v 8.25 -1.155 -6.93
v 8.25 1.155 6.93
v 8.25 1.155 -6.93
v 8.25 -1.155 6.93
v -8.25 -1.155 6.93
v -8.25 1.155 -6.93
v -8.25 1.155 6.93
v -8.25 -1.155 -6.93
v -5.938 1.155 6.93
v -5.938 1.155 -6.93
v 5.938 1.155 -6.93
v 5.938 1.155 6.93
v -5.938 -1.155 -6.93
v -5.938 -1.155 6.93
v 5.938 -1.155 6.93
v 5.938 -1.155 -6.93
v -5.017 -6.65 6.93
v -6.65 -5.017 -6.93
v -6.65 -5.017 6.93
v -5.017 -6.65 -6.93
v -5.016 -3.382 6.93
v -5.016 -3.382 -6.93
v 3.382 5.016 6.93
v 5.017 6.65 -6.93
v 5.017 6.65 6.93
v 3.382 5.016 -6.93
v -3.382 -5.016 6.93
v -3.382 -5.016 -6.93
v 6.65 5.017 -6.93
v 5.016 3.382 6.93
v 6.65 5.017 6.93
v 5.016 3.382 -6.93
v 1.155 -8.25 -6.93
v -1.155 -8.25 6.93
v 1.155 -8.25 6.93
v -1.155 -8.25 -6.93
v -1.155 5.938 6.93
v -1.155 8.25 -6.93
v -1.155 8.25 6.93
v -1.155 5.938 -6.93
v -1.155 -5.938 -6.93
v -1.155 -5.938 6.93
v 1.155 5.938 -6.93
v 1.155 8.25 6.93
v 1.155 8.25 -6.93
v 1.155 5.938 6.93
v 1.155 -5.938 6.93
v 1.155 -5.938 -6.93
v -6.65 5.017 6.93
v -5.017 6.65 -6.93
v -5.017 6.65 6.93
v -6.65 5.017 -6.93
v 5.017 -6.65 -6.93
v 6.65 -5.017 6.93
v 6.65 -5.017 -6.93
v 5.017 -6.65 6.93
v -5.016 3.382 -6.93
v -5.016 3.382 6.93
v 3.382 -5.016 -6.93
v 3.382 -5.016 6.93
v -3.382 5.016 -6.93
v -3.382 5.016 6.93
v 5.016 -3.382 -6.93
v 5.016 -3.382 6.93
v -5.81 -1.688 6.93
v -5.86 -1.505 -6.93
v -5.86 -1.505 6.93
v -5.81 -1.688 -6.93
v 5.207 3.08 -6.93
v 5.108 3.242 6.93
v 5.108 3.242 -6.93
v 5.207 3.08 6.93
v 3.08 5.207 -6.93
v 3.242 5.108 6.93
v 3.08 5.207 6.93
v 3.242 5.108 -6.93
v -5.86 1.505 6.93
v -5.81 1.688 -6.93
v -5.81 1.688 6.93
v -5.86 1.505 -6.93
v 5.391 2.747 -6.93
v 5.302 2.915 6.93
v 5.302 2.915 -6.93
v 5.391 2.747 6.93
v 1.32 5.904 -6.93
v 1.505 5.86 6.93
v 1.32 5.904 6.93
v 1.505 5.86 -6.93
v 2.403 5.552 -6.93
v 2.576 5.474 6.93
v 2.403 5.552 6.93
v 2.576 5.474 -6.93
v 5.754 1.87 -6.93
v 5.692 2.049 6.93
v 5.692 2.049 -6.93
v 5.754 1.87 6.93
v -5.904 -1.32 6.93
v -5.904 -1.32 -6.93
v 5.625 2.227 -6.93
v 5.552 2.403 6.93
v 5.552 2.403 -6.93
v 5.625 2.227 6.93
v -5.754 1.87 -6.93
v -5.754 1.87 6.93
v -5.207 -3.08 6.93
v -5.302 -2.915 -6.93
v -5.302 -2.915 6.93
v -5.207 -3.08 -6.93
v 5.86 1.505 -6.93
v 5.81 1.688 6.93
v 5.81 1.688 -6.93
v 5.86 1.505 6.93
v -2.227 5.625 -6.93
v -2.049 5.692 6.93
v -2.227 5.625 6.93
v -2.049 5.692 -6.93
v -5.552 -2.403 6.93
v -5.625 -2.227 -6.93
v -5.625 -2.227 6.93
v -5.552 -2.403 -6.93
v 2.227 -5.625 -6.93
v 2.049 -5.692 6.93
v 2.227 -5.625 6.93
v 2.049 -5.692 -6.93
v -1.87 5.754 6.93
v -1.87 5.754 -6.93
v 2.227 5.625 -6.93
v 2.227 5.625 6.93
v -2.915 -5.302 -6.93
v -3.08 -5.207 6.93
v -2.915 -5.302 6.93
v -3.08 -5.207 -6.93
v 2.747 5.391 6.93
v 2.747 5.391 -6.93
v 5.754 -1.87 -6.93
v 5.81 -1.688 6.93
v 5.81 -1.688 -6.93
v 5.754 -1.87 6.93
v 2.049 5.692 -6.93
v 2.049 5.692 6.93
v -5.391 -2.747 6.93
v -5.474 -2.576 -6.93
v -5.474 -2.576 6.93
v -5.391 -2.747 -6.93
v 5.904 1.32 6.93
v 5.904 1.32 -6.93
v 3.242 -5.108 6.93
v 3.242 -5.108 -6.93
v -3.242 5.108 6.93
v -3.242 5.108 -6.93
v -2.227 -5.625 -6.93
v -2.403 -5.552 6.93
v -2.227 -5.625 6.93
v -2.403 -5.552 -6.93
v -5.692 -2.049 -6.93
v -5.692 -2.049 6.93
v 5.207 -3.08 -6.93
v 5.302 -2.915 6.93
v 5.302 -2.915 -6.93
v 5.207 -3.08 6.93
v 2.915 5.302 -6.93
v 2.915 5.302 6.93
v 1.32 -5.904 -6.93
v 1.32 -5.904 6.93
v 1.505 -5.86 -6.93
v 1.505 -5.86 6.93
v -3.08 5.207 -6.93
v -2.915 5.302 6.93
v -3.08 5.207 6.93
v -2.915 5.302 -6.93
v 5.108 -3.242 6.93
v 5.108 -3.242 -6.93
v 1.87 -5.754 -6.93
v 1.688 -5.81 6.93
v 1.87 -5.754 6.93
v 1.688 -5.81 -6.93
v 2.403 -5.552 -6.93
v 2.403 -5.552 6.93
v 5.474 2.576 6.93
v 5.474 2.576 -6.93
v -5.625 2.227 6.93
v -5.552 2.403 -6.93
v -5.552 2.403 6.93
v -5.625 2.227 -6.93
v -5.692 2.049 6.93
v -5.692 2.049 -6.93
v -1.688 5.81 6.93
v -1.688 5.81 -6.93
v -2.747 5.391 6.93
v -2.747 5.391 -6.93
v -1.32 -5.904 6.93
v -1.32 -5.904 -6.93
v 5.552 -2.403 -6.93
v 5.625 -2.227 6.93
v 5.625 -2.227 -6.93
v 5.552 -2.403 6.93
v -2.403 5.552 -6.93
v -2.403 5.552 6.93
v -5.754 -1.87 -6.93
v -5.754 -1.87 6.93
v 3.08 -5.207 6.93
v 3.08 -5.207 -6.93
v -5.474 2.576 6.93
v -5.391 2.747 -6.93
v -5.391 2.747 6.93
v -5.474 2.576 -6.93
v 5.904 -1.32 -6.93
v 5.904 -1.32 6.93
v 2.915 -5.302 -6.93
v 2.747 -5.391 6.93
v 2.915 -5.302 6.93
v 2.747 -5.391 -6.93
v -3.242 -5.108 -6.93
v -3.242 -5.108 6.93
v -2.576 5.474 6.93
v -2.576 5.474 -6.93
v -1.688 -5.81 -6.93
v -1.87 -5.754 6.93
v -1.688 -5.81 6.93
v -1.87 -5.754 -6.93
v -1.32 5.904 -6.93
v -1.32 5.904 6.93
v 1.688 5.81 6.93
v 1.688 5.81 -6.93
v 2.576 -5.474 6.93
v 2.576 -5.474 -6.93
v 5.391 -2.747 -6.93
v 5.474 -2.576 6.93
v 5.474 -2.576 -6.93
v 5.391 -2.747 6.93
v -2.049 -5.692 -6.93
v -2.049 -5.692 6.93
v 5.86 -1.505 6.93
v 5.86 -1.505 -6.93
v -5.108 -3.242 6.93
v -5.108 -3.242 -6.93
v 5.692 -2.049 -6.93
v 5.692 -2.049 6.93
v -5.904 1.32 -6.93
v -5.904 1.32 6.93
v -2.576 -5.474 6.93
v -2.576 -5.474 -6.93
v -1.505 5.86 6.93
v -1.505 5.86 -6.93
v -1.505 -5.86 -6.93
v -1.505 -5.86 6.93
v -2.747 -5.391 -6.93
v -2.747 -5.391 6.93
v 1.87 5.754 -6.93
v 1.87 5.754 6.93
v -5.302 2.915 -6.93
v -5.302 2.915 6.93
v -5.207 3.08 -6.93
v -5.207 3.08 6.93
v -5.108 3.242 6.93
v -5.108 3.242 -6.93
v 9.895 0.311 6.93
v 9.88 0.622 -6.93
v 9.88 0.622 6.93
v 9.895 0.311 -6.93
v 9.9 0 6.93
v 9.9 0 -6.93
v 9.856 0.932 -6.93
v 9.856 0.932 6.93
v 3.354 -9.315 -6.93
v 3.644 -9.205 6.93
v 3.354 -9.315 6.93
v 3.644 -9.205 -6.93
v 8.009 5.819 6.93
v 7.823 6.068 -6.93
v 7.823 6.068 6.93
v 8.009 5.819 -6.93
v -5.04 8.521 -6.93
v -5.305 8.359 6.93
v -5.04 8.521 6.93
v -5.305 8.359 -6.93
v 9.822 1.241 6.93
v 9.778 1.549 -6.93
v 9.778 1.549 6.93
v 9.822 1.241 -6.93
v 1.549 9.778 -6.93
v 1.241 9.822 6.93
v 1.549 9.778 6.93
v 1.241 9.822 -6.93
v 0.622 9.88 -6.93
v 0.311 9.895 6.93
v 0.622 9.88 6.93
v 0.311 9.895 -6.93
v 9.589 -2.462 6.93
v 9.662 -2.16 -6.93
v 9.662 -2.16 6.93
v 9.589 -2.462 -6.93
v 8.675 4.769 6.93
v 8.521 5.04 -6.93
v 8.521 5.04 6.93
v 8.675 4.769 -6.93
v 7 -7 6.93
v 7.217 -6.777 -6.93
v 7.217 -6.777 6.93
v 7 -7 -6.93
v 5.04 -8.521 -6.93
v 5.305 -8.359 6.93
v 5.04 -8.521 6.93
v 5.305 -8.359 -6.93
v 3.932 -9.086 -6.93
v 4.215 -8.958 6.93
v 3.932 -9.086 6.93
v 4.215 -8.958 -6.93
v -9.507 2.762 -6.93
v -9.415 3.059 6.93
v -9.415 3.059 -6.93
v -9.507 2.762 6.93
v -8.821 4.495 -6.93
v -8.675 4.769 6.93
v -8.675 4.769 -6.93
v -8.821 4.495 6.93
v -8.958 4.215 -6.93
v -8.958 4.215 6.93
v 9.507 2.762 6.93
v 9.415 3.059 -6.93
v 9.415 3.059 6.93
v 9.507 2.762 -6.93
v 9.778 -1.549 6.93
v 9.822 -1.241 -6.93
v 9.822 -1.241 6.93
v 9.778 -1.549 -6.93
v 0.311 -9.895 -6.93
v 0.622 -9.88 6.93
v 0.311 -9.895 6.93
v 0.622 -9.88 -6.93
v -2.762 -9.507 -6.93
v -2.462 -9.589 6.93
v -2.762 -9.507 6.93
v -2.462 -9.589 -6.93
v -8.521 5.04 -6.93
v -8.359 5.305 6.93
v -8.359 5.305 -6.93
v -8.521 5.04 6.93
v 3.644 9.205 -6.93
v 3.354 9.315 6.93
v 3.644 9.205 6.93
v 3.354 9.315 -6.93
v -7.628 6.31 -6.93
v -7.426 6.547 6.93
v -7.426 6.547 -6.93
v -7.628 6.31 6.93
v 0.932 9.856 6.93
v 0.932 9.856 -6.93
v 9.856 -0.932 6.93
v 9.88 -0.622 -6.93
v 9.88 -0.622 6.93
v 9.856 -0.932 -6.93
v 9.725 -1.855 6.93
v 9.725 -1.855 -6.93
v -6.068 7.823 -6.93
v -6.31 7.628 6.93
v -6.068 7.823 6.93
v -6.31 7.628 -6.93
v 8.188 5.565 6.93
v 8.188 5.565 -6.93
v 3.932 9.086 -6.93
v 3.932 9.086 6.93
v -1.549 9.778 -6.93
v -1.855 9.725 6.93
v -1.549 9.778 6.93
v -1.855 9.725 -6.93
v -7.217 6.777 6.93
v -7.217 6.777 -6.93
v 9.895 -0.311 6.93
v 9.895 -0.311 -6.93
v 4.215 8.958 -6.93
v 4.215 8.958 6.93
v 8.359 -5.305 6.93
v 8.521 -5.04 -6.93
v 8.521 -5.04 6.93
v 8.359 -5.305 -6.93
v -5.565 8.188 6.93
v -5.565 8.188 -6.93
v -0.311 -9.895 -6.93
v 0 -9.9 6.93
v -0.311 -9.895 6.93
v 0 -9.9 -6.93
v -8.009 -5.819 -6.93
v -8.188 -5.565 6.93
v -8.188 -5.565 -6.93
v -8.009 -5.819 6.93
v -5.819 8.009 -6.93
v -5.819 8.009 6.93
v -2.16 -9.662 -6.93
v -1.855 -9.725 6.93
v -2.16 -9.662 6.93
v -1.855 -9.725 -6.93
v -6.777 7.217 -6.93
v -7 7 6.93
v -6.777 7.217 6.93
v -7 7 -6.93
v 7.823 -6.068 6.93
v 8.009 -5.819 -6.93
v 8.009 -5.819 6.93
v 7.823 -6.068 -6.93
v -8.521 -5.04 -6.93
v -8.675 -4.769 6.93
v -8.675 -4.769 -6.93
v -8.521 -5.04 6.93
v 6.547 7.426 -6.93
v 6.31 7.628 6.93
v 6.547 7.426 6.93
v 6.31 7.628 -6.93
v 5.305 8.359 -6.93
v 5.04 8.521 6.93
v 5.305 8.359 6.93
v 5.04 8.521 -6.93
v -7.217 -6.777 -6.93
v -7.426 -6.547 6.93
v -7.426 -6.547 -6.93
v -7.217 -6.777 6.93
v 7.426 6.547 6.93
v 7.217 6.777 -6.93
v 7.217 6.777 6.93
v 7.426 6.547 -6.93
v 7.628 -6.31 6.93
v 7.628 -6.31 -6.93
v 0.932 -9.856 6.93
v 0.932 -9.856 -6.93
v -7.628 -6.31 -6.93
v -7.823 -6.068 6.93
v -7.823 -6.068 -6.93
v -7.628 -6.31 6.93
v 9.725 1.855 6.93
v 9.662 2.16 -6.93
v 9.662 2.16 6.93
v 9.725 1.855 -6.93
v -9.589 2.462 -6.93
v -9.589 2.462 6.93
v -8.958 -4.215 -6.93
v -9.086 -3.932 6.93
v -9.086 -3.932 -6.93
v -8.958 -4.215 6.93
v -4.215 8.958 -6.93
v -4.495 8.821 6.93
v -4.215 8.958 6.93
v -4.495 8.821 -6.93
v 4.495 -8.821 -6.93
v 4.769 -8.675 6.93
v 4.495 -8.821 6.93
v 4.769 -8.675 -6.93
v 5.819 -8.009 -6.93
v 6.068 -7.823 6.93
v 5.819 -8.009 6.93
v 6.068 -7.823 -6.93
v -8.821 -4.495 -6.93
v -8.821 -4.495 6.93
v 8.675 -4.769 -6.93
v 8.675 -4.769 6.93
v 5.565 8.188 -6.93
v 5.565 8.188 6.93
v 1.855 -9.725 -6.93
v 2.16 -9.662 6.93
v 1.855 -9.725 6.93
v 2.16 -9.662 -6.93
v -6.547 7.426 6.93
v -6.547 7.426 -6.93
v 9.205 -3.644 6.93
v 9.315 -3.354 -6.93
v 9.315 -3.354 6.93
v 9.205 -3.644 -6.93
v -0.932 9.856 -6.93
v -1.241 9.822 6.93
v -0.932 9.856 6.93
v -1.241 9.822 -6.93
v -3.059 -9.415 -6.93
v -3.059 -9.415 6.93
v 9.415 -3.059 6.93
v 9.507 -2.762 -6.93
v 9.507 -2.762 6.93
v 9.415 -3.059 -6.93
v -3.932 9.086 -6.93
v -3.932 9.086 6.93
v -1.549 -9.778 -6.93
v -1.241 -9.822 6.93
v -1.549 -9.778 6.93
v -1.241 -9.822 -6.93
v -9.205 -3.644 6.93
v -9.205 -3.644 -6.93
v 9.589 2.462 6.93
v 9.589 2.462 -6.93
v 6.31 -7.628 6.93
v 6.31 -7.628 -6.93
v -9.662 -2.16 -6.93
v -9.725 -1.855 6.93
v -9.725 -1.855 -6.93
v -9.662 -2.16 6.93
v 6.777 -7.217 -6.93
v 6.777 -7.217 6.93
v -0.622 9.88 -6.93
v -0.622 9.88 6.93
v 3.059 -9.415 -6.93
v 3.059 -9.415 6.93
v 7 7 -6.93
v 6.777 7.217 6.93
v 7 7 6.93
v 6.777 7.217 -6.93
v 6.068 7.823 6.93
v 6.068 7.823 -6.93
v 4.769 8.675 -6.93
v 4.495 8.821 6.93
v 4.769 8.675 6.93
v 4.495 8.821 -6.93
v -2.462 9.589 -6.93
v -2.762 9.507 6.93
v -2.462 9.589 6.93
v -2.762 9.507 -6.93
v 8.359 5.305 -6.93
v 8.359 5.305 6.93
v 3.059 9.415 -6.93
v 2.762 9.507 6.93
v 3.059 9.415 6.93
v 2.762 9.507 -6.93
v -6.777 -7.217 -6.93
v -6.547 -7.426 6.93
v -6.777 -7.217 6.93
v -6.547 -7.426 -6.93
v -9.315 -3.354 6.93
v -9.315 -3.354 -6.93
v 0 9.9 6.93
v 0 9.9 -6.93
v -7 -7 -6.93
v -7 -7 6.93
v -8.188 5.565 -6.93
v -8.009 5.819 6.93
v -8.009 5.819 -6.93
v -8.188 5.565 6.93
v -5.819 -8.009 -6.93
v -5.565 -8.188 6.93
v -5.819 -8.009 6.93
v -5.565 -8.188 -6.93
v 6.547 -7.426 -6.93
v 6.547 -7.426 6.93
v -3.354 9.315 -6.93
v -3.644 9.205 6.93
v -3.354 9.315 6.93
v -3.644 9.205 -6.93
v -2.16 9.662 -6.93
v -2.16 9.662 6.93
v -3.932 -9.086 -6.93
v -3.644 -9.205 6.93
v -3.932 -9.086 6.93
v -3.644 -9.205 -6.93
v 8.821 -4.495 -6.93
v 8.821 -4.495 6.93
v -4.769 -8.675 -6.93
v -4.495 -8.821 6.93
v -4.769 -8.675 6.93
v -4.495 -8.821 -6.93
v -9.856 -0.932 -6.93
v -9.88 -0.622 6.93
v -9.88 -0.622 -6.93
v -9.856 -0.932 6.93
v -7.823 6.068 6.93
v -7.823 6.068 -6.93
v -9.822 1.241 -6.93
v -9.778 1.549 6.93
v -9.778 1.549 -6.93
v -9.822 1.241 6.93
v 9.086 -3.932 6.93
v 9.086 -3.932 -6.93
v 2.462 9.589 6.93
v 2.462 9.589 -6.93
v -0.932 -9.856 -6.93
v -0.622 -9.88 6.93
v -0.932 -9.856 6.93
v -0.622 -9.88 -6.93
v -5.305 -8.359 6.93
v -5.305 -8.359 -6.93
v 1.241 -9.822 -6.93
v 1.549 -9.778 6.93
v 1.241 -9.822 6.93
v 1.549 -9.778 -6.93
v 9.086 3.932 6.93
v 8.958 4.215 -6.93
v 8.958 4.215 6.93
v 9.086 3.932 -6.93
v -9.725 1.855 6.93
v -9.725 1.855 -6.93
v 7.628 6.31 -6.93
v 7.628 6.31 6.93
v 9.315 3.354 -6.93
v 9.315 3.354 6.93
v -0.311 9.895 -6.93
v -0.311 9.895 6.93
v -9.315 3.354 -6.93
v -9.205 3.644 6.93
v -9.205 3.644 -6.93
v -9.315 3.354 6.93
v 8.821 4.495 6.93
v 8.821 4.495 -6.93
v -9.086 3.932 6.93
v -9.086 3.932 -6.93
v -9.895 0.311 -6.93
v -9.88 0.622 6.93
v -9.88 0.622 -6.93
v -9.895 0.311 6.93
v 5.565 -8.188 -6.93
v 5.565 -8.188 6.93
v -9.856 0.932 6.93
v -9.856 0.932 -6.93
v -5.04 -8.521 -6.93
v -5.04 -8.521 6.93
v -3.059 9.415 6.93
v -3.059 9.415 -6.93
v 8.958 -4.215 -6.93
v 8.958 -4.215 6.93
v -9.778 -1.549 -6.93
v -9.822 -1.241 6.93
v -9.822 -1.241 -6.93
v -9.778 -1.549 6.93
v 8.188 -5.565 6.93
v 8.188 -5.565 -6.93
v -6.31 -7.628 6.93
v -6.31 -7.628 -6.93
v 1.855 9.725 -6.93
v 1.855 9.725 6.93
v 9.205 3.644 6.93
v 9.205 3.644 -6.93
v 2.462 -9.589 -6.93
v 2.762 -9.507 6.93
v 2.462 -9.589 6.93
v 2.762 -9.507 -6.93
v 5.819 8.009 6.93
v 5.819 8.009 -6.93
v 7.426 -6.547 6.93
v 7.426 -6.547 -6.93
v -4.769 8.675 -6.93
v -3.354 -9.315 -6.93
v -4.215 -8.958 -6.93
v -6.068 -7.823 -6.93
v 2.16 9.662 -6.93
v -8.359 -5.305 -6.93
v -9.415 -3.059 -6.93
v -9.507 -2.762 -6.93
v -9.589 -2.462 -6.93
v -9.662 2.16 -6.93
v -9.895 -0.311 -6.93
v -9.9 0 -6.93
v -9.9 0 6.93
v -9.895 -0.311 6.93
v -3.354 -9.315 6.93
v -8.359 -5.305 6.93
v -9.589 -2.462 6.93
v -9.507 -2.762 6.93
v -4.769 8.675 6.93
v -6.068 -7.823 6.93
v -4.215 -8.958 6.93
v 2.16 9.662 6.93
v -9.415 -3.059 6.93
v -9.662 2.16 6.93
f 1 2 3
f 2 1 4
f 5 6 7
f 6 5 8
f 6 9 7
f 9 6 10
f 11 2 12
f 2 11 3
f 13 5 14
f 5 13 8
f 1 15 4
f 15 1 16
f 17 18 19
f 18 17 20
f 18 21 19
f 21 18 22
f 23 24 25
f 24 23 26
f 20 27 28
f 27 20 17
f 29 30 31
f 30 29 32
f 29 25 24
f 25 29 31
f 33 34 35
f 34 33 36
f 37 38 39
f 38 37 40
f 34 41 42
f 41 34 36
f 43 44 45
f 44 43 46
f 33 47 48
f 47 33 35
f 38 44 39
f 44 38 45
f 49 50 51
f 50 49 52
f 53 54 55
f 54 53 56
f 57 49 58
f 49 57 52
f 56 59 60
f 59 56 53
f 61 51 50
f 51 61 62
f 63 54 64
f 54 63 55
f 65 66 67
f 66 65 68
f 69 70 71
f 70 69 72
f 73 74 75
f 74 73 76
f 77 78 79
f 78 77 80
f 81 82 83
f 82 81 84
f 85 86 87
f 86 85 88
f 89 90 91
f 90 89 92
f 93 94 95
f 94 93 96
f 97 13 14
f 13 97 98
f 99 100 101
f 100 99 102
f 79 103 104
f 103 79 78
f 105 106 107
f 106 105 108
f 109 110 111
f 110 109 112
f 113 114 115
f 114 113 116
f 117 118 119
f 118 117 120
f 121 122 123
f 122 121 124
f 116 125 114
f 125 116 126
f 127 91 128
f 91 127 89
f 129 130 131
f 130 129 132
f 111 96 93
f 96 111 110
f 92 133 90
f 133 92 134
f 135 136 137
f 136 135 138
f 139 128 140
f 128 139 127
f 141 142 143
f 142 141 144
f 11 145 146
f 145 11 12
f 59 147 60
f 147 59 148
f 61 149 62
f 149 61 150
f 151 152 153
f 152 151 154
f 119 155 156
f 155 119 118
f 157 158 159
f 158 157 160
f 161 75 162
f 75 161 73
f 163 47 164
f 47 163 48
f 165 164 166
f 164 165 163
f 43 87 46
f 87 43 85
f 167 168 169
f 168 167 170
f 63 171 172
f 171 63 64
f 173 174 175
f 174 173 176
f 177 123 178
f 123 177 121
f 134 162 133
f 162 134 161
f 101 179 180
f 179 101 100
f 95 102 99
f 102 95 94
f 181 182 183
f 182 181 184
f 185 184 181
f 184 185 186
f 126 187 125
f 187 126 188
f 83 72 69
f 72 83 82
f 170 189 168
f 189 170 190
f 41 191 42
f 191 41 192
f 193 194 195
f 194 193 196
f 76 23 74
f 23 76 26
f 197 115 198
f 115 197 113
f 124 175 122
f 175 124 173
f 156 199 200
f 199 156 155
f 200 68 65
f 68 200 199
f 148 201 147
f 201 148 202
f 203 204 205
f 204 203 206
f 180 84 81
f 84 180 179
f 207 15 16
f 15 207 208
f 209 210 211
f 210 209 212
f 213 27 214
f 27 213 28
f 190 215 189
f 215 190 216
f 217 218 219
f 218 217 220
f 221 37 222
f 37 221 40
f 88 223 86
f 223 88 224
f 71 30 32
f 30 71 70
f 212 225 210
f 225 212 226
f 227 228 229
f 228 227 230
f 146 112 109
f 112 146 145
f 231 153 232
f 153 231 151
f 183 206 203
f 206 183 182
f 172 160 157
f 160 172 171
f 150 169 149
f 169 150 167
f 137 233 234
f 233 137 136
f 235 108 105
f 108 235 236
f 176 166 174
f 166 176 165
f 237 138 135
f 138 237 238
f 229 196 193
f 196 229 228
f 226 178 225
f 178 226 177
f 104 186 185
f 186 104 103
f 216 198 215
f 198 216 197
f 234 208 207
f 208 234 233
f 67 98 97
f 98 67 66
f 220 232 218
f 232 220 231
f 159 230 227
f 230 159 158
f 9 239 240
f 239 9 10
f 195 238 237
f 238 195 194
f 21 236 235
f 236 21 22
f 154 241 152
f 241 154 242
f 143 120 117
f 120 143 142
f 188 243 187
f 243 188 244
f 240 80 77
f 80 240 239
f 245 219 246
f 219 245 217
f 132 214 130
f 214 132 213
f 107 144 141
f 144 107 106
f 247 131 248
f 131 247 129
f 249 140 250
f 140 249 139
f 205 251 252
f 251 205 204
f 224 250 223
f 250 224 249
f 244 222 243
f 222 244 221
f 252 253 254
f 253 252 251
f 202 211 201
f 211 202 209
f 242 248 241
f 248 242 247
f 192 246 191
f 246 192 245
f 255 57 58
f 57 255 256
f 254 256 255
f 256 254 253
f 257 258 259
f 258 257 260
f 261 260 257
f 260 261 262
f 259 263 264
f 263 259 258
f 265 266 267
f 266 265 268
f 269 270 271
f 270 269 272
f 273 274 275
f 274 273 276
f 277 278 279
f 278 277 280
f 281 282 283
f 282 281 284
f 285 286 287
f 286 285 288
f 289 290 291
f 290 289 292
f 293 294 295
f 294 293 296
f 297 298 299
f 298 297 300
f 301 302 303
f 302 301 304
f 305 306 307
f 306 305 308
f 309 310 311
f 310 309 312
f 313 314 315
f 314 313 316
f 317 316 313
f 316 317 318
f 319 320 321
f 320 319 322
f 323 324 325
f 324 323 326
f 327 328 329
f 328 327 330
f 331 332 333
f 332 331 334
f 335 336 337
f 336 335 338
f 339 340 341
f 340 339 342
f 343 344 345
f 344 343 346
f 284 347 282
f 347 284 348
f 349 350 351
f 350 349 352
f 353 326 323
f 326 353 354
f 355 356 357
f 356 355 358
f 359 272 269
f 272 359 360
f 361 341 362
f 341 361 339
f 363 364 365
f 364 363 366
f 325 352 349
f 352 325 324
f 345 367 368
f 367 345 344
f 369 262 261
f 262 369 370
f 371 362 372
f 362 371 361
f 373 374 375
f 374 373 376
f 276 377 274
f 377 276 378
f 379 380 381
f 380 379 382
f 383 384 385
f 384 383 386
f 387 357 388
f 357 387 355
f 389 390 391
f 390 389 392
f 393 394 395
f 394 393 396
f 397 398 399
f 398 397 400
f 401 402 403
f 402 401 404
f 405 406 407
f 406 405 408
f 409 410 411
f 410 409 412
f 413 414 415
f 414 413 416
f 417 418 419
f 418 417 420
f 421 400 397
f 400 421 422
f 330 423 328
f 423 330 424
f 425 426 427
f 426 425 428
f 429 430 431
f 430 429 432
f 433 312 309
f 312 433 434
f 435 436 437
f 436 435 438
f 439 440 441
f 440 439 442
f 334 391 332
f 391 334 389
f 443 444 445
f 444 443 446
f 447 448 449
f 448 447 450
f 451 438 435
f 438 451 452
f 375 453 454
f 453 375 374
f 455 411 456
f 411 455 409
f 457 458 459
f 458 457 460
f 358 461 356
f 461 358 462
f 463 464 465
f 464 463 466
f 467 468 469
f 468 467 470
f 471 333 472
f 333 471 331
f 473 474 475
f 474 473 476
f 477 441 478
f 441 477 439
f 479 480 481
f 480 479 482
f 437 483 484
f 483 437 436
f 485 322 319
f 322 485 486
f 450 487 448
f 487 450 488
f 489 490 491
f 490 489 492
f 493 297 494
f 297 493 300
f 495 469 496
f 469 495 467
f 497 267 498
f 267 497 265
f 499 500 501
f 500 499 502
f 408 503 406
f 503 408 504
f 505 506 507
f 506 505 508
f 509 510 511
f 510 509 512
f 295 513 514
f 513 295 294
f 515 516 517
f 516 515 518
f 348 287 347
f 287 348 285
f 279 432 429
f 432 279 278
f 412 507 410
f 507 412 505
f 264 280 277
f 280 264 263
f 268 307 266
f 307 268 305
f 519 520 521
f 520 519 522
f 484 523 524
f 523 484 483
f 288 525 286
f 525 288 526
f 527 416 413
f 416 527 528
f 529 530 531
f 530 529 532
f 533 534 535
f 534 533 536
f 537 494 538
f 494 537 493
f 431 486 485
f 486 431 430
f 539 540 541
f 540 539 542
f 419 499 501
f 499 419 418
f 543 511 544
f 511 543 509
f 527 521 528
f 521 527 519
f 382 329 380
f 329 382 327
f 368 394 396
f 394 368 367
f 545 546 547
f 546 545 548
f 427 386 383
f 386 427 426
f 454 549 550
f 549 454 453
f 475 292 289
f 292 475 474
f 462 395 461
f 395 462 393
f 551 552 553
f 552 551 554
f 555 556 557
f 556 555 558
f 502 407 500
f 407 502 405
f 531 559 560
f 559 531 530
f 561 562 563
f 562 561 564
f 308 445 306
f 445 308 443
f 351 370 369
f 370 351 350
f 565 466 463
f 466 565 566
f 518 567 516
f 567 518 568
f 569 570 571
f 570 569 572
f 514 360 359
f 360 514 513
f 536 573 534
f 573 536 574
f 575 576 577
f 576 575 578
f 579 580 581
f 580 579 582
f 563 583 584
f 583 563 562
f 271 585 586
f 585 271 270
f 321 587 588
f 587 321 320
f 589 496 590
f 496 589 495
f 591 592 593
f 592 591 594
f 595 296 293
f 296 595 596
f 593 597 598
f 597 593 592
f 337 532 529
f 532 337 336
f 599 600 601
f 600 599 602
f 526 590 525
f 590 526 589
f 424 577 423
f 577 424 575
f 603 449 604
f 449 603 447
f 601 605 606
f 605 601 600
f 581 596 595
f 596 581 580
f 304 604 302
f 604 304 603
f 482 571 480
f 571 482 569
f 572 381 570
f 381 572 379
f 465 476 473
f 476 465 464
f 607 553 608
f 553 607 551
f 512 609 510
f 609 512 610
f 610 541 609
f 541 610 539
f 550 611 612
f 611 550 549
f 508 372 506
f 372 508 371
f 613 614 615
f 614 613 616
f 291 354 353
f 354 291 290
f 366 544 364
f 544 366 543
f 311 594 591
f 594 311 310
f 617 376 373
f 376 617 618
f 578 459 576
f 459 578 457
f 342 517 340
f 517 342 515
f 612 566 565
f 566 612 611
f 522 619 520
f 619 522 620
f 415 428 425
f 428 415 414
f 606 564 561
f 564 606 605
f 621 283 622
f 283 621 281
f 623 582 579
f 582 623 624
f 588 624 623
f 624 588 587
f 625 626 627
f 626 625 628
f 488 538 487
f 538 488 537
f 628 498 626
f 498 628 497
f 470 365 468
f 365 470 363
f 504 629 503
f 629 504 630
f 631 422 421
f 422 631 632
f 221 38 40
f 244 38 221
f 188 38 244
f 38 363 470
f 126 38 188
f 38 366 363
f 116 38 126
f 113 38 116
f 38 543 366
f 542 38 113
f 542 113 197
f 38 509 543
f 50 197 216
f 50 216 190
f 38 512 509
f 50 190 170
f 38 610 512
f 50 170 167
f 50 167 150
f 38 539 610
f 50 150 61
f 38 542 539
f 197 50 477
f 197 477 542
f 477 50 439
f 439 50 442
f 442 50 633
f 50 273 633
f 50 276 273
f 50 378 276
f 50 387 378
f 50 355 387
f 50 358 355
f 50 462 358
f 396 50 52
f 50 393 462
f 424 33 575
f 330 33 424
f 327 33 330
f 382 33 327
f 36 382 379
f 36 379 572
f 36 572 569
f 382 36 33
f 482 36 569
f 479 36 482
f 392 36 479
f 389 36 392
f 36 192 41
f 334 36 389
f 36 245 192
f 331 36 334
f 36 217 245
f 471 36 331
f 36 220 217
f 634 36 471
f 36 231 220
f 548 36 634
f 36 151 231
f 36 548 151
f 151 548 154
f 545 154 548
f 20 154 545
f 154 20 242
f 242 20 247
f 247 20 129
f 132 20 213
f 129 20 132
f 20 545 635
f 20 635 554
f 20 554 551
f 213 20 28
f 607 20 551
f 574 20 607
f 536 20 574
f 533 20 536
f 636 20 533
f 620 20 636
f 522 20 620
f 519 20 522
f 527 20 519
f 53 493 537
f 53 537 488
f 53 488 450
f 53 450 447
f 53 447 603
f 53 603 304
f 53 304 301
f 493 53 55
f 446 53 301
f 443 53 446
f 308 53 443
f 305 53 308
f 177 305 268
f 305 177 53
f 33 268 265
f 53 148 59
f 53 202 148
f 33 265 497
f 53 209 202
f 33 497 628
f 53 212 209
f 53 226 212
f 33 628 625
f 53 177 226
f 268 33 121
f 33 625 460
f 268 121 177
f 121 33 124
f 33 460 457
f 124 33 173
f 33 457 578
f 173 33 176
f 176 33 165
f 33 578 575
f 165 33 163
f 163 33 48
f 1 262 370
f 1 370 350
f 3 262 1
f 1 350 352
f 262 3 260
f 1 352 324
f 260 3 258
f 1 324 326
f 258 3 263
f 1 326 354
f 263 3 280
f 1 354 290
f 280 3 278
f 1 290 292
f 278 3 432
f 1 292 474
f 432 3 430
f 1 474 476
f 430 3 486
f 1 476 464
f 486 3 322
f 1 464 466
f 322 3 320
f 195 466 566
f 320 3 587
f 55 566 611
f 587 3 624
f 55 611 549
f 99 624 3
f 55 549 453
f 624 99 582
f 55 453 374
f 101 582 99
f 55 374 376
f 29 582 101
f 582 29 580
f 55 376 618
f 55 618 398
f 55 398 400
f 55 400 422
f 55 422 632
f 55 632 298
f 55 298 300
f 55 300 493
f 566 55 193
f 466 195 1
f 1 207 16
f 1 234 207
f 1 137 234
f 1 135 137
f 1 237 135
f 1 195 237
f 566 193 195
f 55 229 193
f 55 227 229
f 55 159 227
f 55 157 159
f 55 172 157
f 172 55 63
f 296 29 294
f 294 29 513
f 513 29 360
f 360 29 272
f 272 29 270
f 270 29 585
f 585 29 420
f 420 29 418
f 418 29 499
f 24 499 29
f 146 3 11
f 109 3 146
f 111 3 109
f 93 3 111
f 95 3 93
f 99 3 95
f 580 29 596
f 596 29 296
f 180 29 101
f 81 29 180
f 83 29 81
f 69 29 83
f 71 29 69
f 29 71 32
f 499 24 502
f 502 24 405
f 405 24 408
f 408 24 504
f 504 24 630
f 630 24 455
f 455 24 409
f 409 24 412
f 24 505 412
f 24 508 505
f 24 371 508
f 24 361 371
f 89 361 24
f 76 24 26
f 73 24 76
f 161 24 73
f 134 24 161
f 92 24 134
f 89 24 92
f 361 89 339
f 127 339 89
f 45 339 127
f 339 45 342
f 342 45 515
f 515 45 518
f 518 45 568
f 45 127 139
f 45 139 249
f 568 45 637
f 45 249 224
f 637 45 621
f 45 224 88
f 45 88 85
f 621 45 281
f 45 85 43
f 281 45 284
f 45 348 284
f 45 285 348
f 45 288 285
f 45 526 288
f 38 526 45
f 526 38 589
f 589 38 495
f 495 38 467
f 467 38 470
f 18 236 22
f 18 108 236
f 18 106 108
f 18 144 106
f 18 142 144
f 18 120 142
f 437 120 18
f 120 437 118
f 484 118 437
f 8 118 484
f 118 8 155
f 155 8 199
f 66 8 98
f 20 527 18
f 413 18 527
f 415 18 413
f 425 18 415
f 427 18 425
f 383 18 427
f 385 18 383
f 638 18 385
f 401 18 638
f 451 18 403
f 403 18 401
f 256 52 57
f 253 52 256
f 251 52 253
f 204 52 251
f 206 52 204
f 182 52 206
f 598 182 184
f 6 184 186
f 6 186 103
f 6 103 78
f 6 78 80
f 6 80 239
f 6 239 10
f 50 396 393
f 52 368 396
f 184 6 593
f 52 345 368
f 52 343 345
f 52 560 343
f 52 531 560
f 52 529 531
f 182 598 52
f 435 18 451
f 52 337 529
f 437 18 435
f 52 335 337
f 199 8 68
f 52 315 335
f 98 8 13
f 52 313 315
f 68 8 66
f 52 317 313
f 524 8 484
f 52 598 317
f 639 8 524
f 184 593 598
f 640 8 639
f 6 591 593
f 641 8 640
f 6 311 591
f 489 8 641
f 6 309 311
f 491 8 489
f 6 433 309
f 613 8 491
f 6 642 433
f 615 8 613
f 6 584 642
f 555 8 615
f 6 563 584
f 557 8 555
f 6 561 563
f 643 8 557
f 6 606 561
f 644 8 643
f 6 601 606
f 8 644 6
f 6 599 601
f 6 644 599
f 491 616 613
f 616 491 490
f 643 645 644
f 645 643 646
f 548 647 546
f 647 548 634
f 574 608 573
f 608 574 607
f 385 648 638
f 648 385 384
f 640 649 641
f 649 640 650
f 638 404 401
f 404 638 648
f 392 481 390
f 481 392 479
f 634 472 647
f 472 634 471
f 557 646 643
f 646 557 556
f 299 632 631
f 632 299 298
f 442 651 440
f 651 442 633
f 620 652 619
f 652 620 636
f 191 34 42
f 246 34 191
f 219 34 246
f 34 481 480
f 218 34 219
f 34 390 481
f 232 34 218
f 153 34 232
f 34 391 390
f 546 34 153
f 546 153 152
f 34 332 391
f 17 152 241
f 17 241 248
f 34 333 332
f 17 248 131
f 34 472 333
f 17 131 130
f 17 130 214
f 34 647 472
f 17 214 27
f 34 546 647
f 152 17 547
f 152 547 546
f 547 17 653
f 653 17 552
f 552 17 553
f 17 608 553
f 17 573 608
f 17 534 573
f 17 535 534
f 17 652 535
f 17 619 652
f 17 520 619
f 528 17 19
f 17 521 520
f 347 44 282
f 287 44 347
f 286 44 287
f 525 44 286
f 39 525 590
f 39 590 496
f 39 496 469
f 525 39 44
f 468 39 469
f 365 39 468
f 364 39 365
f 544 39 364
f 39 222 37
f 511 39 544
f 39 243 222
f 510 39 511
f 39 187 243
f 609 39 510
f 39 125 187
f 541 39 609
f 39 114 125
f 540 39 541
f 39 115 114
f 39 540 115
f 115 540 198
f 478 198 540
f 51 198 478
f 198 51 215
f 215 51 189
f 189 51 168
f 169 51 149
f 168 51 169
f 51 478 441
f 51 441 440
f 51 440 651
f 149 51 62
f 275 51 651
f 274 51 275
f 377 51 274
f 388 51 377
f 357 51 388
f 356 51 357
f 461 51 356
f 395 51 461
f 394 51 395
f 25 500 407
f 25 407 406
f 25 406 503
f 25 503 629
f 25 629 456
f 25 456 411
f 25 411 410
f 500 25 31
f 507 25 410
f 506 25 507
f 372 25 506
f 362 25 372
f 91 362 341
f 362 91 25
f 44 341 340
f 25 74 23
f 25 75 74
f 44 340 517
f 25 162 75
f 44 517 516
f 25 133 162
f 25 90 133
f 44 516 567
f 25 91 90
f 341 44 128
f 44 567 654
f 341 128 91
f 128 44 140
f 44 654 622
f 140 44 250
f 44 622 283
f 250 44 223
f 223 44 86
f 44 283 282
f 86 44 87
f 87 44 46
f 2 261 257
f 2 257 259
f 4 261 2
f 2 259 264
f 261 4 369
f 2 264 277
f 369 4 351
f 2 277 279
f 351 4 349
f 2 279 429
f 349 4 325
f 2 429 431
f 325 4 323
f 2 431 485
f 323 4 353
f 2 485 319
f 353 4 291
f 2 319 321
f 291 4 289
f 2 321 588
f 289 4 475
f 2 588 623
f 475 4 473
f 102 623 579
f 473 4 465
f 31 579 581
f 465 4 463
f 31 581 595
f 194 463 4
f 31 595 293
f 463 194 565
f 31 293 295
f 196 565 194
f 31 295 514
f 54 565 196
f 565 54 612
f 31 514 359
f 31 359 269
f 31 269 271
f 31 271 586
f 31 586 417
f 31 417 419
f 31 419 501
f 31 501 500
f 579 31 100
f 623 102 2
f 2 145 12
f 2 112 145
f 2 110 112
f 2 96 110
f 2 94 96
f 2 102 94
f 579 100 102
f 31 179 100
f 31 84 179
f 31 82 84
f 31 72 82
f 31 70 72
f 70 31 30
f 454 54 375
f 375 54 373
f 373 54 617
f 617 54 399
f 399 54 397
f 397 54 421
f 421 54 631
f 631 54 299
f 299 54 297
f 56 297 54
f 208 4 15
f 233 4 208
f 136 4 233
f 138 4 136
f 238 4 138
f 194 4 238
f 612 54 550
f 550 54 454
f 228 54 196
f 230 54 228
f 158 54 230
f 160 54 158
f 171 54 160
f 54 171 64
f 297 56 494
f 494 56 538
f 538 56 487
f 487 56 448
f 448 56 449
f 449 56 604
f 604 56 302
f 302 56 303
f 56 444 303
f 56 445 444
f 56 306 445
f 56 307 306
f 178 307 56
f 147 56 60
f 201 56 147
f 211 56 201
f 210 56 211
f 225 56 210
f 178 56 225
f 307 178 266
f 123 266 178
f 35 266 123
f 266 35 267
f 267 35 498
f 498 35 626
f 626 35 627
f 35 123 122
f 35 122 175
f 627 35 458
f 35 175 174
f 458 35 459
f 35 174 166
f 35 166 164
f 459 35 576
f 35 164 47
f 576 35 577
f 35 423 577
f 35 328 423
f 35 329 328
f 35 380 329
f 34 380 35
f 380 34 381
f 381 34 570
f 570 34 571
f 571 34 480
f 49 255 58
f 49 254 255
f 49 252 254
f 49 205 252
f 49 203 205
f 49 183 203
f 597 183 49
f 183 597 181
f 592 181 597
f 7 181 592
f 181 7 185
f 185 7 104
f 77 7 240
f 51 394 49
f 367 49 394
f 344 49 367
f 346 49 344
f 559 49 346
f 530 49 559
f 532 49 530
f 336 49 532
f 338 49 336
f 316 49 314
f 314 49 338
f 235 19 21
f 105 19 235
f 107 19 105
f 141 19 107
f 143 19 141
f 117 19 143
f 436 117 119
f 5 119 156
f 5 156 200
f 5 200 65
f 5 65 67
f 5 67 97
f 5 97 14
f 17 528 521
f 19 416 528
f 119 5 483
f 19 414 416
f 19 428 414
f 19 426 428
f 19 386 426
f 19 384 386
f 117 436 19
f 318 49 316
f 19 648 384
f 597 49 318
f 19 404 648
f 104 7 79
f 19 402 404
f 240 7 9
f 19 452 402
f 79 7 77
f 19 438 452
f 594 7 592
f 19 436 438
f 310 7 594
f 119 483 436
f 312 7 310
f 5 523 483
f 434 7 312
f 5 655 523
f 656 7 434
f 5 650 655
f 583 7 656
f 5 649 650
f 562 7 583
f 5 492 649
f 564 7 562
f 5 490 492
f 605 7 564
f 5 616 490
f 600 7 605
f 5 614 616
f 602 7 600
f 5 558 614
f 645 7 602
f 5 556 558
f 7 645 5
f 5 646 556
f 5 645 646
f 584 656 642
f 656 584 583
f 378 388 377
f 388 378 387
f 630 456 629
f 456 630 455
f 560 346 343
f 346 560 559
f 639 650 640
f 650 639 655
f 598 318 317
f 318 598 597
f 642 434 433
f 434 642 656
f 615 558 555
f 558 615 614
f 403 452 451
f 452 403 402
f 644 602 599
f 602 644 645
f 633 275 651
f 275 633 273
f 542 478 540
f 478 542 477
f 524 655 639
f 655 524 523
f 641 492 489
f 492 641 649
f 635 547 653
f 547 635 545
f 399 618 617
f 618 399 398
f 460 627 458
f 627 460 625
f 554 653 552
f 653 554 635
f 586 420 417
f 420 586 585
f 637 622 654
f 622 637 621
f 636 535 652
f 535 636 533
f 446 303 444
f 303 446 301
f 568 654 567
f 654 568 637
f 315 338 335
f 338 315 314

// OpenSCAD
// Splined motor coupler for 
// helicopter toy on Rescue 911 Pinball
// by Instant Arcade - August 2023
//
// Note: Print on an SLA printer
// Printing with supports at an angle will help removal of part

outer_diameter_mm = 18;         // Some padding - incread this if you want a stronger part
inner_spline_length_mm = 15;    // Distance measured between ends of opposing splines
spline_pocket = 11;             // Diameter between opposing pockets between the splines
spline_width_mm = 2.1;          // Width of one spline

coupler_length = 14;            // As measured - can increase if you have a larger gap, or reduce if you want a looser fit

num_splines = 8;                // R911 parts have 8 splines


// splined center - This is a model of the splined connectors on each side of the mechanism
// We will use this as a boolean cutout of the coupler
module splined_center(sl,sp,sw,cl)
{
    cylinder( r = (sp)/2, center = true, h = cl, $fn=200 );
    
    angle = 360/num_splines;
    for( i = [0 : num_splines] )
    {
        rotate( angle*i, [0,0, 1] )
        {
            cube( [sl, sw, cl], center = true );
        }        
    }    
}


// coupler part - Tolerance is to provide a slightly looser fit and you may need to tweak this a bit more depending on your printer accuracy and/or resin properties
module coupler(tolerance) // 1.1 gave me a snug fit
{
    difference()
    {
        cylinder( r = (outer_diameter_mm*tolerance)/2, center = true, h = coupler_length*0.99, $fn=200 );
        splined_center(inner_spline_length_mm*tolerance, spline_pocket*tolerance, spline_width_mm*tolerance, coupler_length);
    }
}

// create the coupler
coupler(1.1);

// For testing, you can create/render the center part separately - but move it to the side first
/*
translate([outer_diameter_mm*1.1,0,0])
{
    splined_center(inner_spline_length_mm, spline_pocket, spline_width_mm, coupler_length);
}
*/
